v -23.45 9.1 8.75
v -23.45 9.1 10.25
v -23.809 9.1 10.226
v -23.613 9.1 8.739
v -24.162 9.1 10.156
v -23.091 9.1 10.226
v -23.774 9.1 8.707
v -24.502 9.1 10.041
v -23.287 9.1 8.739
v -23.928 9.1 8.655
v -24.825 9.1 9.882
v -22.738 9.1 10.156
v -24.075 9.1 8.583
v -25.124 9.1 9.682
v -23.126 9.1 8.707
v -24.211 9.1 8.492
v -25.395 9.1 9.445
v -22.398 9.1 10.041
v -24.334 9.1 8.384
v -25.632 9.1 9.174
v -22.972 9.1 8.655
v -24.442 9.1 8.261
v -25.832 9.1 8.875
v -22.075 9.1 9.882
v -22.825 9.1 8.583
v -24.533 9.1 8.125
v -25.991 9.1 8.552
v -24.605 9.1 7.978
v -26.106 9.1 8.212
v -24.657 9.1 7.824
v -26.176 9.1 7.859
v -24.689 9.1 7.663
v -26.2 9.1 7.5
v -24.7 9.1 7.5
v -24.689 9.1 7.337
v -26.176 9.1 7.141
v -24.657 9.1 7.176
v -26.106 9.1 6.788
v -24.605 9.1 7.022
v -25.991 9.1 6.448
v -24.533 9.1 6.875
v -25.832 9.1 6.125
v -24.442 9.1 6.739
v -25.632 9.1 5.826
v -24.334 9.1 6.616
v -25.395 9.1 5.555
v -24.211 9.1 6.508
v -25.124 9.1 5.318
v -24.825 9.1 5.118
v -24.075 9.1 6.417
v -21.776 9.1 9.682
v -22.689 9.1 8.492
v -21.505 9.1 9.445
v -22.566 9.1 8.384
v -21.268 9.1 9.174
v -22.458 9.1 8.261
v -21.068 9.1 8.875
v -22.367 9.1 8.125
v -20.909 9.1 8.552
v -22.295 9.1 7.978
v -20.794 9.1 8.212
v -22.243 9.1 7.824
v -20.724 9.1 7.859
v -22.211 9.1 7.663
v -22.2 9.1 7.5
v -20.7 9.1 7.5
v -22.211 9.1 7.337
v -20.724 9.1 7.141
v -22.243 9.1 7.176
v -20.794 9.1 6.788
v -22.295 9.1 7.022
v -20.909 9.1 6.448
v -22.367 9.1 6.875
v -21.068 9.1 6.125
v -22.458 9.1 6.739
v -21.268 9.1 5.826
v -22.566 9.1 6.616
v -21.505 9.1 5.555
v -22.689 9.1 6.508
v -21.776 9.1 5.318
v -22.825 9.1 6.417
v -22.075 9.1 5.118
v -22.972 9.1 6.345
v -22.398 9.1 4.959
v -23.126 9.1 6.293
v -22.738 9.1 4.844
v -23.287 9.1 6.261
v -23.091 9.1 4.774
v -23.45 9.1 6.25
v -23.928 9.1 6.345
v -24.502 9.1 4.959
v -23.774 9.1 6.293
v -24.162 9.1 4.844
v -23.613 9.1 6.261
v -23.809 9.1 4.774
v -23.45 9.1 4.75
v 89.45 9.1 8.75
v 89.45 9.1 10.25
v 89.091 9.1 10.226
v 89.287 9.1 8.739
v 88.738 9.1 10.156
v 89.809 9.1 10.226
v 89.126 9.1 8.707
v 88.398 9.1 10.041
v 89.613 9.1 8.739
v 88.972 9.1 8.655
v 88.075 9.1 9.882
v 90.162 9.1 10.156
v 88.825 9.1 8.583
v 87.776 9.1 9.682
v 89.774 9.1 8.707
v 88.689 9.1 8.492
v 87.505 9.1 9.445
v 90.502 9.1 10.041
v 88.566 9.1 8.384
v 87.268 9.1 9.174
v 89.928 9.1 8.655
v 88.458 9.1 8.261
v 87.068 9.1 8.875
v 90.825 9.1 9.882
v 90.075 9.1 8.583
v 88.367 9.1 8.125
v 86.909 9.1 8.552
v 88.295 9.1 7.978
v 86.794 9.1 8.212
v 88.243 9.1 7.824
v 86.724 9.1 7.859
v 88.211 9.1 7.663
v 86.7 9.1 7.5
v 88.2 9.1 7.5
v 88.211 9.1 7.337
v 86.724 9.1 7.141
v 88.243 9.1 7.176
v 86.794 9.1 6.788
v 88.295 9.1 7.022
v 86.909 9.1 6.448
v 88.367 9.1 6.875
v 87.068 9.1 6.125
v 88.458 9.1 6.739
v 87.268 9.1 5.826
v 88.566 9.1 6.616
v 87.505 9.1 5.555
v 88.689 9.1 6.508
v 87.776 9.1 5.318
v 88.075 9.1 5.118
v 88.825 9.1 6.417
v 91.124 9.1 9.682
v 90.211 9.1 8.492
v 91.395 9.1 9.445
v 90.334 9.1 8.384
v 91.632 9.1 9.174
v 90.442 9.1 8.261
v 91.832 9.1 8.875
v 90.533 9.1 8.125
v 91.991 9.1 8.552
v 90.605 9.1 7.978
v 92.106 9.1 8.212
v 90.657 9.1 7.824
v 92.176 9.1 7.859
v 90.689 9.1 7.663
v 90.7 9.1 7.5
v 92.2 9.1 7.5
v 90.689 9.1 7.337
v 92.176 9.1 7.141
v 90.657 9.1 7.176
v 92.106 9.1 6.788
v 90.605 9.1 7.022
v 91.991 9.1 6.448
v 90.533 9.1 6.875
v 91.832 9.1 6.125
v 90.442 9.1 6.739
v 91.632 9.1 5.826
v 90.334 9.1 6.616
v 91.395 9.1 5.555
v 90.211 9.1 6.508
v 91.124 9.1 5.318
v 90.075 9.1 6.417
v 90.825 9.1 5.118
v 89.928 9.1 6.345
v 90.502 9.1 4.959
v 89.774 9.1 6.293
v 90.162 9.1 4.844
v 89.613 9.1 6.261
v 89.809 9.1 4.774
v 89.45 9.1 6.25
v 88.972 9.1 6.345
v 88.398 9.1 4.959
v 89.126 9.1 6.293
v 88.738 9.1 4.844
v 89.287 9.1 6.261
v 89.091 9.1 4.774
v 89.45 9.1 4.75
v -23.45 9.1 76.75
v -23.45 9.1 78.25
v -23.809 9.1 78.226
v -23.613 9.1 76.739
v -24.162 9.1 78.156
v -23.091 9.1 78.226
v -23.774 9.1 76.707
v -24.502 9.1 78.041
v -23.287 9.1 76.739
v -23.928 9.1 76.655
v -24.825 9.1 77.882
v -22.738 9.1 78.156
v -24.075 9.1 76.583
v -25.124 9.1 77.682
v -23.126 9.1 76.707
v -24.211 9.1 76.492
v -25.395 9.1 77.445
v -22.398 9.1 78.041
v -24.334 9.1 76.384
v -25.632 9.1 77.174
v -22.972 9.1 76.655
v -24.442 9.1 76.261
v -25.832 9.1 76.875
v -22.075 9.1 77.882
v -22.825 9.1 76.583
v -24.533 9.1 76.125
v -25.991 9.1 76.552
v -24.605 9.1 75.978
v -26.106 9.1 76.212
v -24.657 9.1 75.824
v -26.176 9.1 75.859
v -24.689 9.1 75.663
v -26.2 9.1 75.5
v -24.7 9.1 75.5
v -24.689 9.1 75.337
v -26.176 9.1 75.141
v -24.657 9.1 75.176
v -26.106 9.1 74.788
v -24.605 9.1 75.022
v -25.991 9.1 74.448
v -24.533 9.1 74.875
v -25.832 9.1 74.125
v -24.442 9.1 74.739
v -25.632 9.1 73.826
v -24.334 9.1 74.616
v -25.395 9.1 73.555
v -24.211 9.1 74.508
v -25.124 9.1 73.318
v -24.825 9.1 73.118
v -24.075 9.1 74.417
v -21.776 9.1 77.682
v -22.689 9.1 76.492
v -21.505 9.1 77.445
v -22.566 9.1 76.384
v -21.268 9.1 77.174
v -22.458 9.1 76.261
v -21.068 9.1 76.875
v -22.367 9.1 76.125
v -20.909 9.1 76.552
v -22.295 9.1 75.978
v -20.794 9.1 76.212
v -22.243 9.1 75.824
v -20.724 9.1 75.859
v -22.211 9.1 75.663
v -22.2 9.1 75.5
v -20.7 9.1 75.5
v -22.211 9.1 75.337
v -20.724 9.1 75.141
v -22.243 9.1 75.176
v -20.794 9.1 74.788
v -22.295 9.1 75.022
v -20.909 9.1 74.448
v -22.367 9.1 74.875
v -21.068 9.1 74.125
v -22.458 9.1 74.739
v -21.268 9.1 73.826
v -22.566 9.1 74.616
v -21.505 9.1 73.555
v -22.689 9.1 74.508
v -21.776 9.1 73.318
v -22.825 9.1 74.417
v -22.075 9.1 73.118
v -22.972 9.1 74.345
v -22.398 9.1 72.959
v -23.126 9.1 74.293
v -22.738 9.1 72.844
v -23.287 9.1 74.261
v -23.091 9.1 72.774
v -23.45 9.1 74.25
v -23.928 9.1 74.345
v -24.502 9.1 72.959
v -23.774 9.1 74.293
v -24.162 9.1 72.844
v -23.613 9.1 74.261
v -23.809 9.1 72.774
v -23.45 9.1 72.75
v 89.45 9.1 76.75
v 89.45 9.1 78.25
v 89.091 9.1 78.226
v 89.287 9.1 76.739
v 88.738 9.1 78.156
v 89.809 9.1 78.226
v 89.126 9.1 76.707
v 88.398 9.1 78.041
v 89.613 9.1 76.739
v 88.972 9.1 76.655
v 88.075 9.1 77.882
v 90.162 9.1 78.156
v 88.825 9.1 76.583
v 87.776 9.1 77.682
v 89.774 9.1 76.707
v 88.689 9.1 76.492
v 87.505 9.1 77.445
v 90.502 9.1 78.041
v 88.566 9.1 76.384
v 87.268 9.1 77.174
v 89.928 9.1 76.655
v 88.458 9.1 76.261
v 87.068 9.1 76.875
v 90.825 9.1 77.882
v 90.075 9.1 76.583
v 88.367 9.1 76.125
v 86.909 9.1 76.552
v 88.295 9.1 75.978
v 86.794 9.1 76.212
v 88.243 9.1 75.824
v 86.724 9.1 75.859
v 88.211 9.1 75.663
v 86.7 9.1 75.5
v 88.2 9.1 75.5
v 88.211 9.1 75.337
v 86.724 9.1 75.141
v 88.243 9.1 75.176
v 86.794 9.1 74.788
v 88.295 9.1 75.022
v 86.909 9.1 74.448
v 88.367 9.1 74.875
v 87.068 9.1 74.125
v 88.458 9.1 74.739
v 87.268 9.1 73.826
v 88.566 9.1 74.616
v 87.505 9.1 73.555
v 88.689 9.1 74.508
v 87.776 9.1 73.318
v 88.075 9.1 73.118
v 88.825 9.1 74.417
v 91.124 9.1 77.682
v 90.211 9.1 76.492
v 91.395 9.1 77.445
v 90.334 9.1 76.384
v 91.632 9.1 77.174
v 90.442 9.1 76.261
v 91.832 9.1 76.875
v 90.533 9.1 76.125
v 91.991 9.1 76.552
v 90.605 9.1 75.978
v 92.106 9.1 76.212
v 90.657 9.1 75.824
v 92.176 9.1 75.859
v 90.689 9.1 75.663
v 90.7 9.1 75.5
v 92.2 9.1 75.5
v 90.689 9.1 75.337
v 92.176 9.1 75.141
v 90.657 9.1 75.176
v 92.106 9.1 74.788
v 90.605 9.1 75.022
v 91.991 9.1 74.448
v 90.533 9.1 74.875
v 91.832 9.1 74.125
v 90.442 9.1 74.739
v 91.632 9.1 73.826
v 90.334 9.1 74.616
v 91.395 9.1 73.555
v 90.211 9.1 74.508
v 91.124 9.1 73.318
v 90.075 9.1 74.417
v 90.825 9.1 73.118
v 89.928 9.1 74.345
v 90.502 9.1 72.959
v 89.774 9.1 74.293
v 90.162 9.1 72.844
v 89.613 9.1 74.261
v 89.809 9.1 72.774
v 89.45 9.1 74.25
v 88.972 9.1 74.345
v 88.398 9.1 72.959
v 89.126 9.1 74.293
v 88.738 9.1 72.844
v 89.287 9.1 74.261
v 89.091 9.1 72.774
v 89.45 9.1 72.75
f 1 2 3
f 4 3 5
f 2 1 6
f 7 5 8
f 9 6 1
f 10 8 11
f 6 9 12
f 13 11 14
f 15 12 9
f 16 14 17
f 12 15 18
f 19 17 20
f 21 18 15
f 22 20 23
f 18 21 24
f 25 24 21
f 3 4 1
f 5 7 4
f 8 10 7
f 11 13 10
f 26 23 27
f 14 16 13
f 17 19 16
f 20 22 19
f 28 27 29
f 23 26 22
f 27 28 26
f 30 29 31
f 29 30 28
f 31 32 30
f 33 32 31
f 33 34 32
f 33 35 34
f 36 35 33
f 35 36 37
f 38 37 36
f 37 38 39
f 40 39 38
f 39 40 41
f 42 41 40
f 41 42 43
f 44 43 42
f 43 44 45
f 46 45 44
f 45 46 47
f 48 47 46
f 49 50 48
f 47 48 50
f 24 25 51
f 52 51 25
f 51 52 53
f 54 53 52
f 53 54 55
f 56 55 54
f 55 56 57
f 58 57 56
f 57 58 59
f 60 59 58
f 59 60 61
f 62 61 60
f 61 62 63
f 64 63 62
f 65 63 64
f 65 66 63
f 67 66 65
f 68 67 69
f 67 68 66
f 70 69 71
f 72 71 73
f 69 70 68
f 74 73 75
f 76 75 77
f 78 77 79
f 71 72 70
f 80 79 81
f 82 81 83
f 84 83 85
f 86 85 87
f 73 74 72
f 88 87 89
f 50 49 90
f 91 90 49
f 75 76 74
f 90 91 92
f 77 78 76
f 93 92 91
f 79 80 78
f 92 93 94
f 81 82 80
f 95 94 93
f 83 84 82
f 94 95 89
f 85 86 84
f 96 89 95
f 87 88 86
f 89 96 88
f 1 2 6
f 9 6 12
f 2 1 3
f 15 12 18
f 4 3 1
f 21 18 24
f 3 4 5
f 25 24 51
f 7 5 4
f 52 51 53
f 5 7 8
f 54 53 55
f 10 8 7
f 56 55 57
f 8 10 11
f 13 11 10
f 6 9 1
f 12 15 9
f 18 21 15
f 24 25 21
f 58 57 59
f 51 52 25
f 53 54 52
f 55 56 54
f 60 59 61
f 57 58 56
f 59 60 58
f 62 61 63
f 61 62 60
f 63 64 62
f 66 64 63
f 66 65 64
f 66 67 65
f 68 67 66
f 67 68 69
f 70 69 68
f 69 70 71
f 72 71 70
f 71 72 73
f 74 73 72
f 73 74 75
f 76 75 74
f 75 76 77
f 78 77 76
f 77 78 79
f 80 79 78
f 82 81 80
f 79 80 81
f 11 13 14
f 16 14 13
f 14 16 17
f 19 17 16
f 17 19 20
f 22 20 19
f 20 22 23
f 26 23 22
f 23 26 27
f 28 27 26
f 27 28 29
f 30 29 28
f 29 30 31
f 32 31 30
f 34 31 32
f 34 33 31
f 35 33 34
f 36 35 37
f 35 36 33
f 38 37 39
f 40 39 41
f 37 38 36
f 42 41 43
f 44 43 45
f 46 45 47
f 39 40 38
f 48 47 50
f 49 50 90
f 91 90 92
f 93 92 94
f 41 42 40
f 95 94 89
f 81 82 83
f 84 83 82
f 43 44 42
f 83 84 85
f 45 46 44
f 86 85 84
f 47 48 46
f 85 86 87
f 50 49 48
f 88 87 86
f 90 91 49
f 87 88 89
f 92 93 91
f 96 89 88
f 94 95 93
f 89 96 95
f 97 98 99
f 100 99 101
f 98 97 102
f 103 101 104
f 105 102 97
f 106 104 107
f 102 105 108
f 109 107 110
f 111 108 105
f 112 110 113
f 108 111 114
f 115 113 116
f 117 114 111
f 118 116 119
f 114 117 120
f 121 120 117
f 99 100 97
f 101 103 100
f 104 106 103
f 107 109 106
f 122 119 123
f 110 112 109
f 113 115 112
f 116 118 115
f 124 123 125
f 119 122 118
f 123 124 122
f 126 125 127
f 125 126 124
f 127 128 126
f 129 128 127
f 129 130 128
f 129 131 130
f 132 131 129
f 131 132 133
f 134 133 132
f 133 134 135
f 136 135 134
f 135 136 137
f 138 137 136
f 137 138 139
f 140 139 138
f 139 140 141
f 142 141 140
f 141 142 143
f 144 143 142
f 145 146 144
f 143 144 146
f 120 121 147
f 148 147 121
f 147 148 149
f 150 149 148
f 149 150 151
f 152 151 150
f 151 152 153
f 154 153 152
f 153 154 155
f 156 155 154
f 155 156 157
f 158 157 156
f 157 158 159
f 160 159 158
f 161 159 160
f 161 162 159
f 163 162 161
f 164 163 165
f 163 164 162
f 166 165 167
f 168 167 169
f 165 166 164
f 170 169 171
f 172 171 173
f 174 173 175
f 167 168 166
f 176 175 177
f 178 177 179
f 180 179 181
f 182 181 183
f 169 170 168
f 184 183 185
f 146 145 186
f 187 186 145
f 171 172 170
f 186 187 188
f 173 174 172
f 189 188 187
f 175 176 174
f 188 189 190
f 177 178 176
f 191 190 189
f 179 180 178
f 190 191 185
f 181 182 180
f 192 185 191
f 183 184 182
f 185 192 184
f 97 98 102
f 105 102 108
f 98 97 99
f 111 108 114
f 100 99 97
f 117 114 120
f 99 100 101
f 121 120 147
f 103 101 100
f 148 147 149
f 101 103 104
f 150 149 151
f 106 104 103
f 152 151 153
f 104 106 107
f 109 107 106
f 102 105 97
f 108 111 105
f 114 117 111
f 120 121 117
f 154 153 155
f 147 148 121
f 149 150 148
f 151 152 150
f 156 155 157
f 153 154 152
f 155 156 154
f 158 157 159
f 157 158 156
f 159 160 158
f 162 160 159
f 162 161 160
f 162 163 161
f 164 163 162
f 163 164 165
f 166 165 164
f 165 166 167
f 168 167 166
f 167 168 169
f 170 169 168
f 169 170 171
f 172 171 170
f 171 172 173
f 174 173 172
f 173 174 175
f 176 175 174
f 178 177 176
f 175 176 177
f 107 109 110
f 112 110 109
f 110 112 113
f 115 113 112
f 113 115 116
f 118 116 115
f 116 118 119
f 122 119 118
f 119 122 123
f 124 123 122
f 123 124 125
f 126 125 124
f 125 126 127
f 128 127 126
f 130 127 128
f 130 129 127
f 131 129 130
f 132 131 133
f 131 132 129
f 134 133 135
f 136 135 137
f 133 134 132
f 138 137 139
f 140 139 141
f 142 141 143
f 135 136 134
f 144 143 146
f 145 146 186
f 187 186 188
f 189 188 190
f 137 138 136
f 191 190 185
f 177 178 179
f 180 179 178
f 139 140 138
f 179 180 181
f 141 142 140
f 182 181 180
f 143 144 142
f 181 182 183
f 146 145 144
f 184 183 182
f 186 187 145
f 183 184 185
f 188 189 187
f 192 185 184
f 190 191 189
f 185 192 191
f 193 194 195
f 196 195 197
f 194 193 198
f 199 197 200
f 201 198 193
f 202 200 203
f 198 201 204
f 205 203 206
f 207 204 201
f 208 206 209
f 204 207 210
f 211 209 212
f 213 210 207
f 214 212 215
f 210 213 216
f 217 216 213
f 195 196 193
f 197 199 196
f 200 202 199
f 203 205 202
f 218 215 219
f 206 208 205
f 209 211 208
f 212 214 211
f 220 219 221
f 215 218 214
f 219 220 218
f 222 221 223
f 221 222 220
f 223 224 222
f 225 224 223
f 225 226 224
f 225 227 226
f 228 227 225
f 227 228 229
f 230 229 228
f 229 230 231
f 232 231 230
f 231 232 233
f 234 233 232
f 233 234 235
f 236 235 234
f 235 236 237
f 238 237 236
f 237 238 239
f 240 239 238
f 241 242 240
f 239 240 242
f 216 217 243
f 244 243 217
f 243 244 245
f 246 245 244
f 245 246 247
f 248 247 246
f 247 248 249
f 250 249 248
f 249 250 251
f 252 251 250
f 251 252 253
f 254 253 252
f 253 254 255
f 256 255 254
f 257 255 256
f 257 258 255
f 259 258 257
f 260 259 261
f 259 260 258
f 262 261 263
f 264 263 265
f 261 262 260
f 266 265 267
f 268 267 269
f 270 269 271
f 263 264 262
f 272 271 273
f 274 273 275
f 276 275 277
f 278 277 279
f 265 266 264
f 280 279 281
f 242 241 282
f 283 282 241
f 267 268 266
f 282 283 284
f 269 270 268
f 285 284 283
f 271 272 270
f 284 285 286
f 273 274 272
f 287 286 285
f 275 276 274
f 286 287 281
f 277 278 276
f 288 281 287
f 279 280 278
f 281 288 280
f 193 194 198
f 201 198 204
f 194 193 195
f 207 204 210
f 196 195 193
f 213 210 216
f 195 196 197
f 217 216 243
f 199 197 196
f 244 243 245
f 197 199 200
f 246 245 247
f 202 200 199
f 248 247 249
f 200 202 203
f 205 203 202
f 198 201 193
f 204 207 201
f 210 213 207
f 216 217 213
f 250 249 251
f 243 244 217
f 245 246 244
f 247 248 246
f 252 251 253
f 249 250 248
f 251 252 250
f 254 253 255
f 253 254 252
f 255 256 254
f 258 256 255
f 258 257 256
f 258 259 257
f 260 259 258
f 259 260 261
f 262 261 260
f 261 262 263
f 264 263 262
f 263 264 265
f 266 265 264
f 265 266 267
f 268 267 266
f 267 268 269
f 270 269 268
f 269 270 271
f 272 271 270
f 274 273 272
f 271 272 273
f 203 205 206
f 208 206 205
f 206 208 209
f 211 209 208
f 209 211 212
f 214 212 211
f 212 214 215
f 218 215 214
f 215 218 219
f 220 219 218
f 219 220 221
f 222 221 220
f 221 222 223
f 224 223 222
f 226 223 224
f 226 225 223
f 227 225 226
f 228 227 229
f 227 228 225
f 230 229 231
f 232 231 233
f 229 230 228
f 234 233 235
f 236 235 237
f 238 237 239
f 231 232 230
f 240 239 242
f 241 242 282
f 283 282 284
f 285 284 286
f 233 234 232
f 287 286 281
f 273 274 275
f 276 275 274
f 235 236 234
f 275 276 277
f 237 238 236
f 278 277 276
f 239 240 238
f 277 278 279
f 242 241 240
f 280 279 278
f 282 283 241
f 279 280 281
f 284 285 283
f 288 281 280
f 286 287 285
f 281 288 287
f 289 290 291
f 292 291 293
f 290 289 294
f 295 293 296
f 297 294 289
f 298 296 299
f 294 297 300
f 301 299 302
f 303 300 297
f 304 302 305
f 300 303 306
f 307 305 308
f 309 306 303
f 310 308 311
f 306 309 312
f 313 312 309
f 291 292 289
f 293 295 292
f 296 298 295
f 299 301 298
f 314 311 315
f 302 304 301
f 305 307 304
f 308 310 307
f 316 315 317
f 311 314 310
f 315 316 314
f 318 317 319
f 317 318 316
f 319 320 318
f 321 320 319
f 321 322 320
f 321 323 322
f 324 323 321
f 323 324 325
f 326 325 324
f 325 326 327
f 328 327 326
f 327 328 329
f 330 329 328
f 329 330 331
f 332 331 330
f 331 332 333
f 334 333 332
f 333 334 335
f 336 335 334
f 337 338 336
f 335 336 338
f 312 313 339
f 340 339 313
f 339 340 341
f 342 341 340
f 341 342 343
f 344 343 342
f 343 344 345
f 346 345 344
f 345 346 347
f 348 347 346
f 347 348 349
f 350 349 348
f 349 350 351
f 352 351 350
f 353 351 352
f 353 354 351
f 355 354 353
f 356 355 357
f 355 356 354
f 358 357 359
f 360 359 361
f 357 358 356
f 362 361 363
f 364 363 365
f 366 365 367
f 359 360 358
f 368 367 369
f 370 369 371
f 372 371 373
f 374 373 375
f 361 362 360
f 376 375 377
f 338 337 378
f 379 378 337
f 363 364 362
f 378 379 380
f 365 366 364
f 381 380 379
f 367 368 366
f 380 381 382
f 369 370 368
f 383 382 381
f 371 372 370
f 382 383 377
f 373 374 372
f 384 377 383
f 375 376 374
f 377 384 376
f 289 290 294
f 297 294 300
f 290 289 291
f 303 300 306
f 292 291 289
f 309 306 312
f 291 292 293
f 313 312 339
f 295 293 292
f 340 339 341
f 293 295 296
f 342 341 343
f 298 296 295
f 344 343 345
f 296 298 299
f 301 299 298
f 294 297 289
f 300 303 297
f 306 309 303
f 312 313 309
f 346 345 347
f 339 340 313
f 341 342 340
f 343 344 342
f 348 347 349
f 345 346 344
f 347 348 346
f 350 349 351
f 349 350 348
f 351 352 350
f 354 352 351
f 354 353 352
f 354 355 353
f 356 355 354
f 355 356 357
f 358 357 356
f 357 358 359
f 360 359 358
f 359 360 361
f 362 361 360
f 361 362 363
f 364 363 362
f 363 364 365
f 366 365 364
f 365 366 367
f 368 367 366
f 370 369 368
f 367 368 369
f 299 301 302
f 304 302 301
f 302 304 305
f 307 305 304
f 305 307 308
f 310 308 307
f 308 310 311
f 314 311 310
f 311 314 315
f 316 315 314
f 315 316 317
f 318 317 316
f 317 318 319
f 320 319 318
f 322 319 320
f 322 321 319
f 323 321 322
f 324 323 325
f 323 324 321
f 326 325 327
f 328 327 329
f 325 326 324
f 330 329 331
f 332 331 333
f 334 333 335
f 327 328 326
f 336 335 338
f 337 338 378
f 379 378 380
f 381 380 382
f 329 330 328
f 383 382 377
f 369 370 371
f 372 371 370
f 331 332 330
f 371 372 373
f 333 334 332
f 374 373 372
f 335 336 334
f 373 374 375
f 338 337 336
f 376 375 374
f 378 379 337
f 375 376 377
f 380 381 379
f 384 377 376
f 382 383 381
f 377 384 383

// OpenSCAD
// file: D:/Projects/assembly-workshop/outputs/Screen_Pi_Hue_SCR5-H8_2026-10-31/checks/geometry.scad
// SCR5-G; mm; FRONT view: X right, Z up, Y into rack. Glass/plate front Y=0.
// Measured values: work/screen-5in/Dimensions.md. Physical fit/strength UNKNOWN.
part="plate";
DROP=0.45; // coupon winner can be substituted here; all three pins use this DROP
LIP=0.8; LIP_ON=true;
LIP_EDGES=[true,true,false,false]; // left,right,bottom,top; Brian: side lips only, cosmetic
FRAME_STEP=1.5; // measured glass-edge inset to metal LCD frame, left/right only
SHIM=0; // moves rear frame seat and plate-boss mating face back
$fn=48;
GCX=33; GCZ=41.5; PW=252; PH=88.8; PT=4;
GW=120.7; GH=77.2; CLEAR=0.2; WW=GW+2*CLEAR; WH=GH+2*CLEAR;
SEAT=13.3+SHIM; FT=3;
SO=[56.45,34]; BTN_X=[45.5,35.5,25.5];
PCB_TOP=38; GAP=0.10; LEAF_T=0.8;
HOLE=[3.4,40.3,44.7];
BX=[GCX-68,GCX+68]; BZ=[10,72];
// DSI connector X extent is unmeasured: conservative assumed 8 mm inward from PCB edge.
DSI=[GCX-60.5,9.1,GCZ-38+30,8,5.25,21];
module xz(y,d){translate([0,y+d,0])rotate([90,0,0])linear_extrude(d)children();}
// rr/rack_slots copied from SCR5-F; same exact slot centres, outline shifted -0.05 Z to centre 44.4.
module rr(w,h,r){hull()for(x=[-w/2+r,w/2-r],z=[-h/2+r,h/2-r])translate([x,z])circle(r=r);}
module rack_slots(){for(x=[-118.2625,118.2625],z=[6.323,38.127,50.773,82.577])translate([x,z])hull()for(dx=[-1.5,1.5])translate([dx,0])circle(d=7);}
module cyl_y(x,y,z,d,h){translate([x,y,z])rotate([-90,0,0])cylinder(d=d,h=h);}
module window_cut(){
  xz(-0.02,4.04)translate([GCX,GCZ])square([WW,WH],center=true);
  // 0.3 x 45-degree chamfer, square corners, front only.
  translate([GCX,0.3,GCZ])rotate([90,0,0])
    linear_extrude(height=0.3,scale=[(WW+0.6)/WW,(WH+0.6)/WH])square([WW,WH],center=true);
}
module lips(){
  // Cosmetic side ledges only; rear frame/standoffs set depth and retain the screen.
  if(LIP_ON)for(i=[0:3])if(LIP_EDGES[i]){
    if(i<2)translate([GCX+(i==0?-WW/2:WW/2-LIP),2.5,GCZ-GH/2+4])cube([LIP,0.8,GH-8]);
    else translate([GCX-GW/2+4,2.5,GCZ+(i==2?-WH/2:WH/2-LIP)])cube([GW-8,0.8,LIP]);
  }
}
// Leaf/nub/bump geometry copied from SCR5-WP-A, translated to this glass centre.
module leaves(){for(x=BTN_X)translate([GCX+x-1.5,0,GCZ]){
  translate([0,0,PCB_TOP+GAP+0.9+0.1])cube([3,11.8,LEAF_T]);
  translate([0,10.2,PCB_TOP+GAP])cube([3,1.4,1.0+LEAF_T/2]);
  translate([0,10.4,PCB_TOP+GAP+1.0+LEAF_T])cube([3,1.0,0.9]);
}}
module plate(){difference(){union(){
  difference(){xz(0,PT)translate([0,PH/2])rr(PW,PH,2.5);window_cut();}
  for(x=BX,z=BZ)cyl_y(x,3.9,z,8,SEAT-3.9);
  leaves(); lips();
 }
 xz(-0.02,4.04)rack_slots();
 for(x=BTN_X)translate([GCX+x-HOLE[0]/2,-0.02,GCZ+HOLE[1]])cube([HOLE[0],SEAT+FT+0.04,HOLE[2]-HOLE[1]]);
 // Printed-in screw pilots (no heat-set OD assumption): nominal M2.5, fit UNKNOWN.
 for(x=BX,z=BZ)cyl_y(x,SEAT-6,z,2.1,6.02);
 // Rear engraving, 0.5 deep, left field.
 xz(3.5,0.52)translate([-75,40])mirror([1,0])text("SCR5-G",size=6,halign="center",font="Liberation Sans:style=Bold");
}}
module frame_blank(){
  // C-shaped perimeter; no material across the board centre / touch FPC.
  xz(SEAT,FT)translate([GCX,GCZ])difference(){square([132,76],center=true);square([116,60],center=true);}
  for(sx=[-1,1],sz=[-1,1])cyl_y(GCX+sx*SO[0],SEAT,GCZ+sz*SO[1],9,FT);
  for(x=BX,z=BZ)hull(){cyl_y(x,SEAT,z,8,FT);cyl_y(GCX+(x<GCX?-62:62),SEAT,z,8,FT);}
}
module dsi_keepout(){translate([DSI[0]-3,DSI[1]-3,DSI[2]-3])cube([DSI[3]+6,DSI[4]+6,DSI[5]+6]);}
module ribbon_route(){
  // Open left/up corridor 18 mm wide; extends past top of plate.
  translate([GCX-84,6.1,GCZ-11])cube([18,24,65]);
  translate([GCX-84,6.1,GCZ-11])cube([32,24,27]);
}
module frame(){difference(){frame_blank();dsi_keepout();ribbon_route();
 for(sx=[-1,1],sz=[-1,1])cyl_y(GCX+sx*SO[0],SEAT-0.02,GCZ+sz*SO[1],2.8,FT+0.04);
 for(x=BX,z=BZ)cyl_y(x,SEAT-0.02,z,2.8,FT+0.04);
}}
// Pin polygon/cap/notch/dot design copied unchanged from SCR5-WP-A.
module pin(d,dots){s=2*d+0.5;difference(){union(){
 translate([-1.5,0,0])rotate([90,0,90])linear_extrude(3)polygon([
 [-s-0.02,40.5],[10.2,40.5],[10.2,41.0],[11.5,41.0],[11.5+2*d,41.0-d],[15,41.0-d],[15,44.5],[-s-0.02,44.5]]);
 translate([-2.5,-s-1.5,39.6])cube([5,1.5,5.8]);
 }for(i=[0:dots-1])translate([(i-(dots-1)/2)*1.4,-s-1.5-0.01,43.5])rotate([-90,0,0])cylinder(d=0.9,h=0.4);}}
module placed_pin(i){translate([GCX+BTN_X[i],0,GCZ])pin(DROP,i+1);}
// Measured layers: cover glass 0.9 + second glass 1.6, metal frame 3.0,
// open gap 2.0, PCB 1.6. Metal frame inset ~1.5 at LEFT/RIGHT only.
// PCB centred under glass and full metal-frame top/bottom extent remain UNKNOWN.
module glass(){translate([GCX-GW/2,0,GCZ-GH/2])cube([GW,2.5,GH]);}
module lcd(){
  translate([GCX-GW/2+FRAME_STEP,2.5,GCZ-GH/2])cube([GW-2*FRAME_STEP,3.0,GH]);
}
module pcb(){translate([GCX-60.5,7.5,GCZ-38])cube([121,1.6,76]);}
module standoffs(){for(sx=[-1,1],sz=[-1,1])difference(){cyl_y(GCX+sx*SO[0],9.1,GCZ+sz*SO[1],5.5,4.2);cyl_y(GCX+sx*SO[0],9.08,GCZ+sz*SO[1],2.5,4.24);}}
module buttons(){for(x=BTN_X){
 translate([GCX+x-3.5,9.1,GCZ+38-3.4])cube([7,3.6,2.4]);
 translate([GCX+x-1.5,9.1,GCZ+37])cube([3,3.6,1]);
}}
module dsi(){translate([DSI[0],DSI[1],DSI[2]])cube([DSI[3],DSI[4],DSI[5]]);}
module touch(){translate([GCX-10,9.1,GCZ-5])cube([20,2,10]);} // lateral extent unmeasured
module dummy(){glass();lcd();pcb();standoffs();buttons();dsi();touch();}
module assembly(){color("gray")plate();color("orange")frame();for(i=[0:2])color("cyan")placed_pin(i);color([0.2,0.3,0.4,0.4])dummy();}
// main file
include <D:/Projects/assembly-workshop/outputs/Screen_Pi_Hue_SCR5-H8_2026-10-31/checks/geometry.scad>
intersection(){pcb();standoffs();}
